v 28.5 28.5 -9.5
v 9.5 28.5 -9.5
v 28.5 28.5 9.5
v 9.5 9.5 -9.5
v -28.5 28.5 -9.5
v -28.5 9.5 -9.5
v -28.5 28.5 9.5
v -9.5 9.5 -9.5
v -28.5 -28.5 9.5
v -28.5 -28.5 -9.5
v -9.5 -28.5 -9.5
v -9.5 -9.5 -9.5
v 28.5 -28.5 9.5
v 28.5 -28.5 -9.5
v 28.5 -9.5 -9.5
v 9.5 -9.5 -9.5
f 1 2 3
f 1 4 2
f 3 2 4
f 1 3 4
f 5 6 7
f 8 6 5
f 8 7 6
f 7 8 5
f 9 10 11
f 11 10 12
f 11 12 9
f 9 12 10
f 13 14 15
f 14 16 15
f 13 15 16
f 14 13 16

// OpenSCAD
// file: def.scad
block_size_3 = 19;
block_size_4 = 16;
block_size_5 = 14;
block_size_6 = 12.5;
block_size_7 = 11;
block_size_8 = 10;

inf = 1000;

round_radius = 1;
sticker_margin = 2.5;
sticker_round_radius = 0.75;

module _block(size) {
    minkowski() {
        cube([size - round_radius * 2, size - round_radius * 2, size - round_radius * 2], center = true);
        sphere(r = round_radius, $fn = 24);
    }
}

module _selector_0(size) {
    cube([size - 0.2, size - 0.2, size - 0.2], center = true);
}

module _sticker(size) {
    minkowski() {
        cube([size - sticker_margin * 2, size - sticker_margin * 2, 0.1], center = true);
        cylinder(r = sticker_round_radius, h = 0.1, $fn = 24);
    }
}

module _selector_corner_cw(size) {
    difference() {
        cube([size, size, size], center = true);
        rotate([0, -45, 0])
            translate([-inf, -inf, 0])
                cube([inf * 2, inf * 2, inf]);
        rotate([90, 0, 45])
            translate([-inf, -inf, 0])
                cube([inf * 2, inf * 2, inf]);
    }
}

module _selector_corner_ccw(size) {
    difference() {
        cube([size, size, size], center = true);
        rotate([45, 0, 0])
            translate([-inf, -inf, 0])
                cube([inf * 2, inf * 2, inf]);
        rotate([0, -90, -45])
            translate([-inf, -inf, 0])
                cube([inf * 2, inf * 2, inf]);
    }
}

module _selector_edge_cw(size) {
    difference() {
        cube([size, size, size], center = true);
        rotate([90, 0, 45])
            translate([-inf, -inf, 0])
                cube([inf * 2, inf * 2, inf]);
    }
}

module _selector_edge_ccw(size) {
    difference() {
        cube([size, size, size], center = true);
        rotate([0, -90, -45])
            translate([-inf, -inf, 0])
                cube([inf * 2, inf * 2, inf]);
    }
}
// main file
include <def.scad>

for (deg = [0 : 90 : 270])
    rotate([0, 0, deg])
        translate([block_size_3, block_size_3, 0])
            _selector_corner_cw(block_size_3);
